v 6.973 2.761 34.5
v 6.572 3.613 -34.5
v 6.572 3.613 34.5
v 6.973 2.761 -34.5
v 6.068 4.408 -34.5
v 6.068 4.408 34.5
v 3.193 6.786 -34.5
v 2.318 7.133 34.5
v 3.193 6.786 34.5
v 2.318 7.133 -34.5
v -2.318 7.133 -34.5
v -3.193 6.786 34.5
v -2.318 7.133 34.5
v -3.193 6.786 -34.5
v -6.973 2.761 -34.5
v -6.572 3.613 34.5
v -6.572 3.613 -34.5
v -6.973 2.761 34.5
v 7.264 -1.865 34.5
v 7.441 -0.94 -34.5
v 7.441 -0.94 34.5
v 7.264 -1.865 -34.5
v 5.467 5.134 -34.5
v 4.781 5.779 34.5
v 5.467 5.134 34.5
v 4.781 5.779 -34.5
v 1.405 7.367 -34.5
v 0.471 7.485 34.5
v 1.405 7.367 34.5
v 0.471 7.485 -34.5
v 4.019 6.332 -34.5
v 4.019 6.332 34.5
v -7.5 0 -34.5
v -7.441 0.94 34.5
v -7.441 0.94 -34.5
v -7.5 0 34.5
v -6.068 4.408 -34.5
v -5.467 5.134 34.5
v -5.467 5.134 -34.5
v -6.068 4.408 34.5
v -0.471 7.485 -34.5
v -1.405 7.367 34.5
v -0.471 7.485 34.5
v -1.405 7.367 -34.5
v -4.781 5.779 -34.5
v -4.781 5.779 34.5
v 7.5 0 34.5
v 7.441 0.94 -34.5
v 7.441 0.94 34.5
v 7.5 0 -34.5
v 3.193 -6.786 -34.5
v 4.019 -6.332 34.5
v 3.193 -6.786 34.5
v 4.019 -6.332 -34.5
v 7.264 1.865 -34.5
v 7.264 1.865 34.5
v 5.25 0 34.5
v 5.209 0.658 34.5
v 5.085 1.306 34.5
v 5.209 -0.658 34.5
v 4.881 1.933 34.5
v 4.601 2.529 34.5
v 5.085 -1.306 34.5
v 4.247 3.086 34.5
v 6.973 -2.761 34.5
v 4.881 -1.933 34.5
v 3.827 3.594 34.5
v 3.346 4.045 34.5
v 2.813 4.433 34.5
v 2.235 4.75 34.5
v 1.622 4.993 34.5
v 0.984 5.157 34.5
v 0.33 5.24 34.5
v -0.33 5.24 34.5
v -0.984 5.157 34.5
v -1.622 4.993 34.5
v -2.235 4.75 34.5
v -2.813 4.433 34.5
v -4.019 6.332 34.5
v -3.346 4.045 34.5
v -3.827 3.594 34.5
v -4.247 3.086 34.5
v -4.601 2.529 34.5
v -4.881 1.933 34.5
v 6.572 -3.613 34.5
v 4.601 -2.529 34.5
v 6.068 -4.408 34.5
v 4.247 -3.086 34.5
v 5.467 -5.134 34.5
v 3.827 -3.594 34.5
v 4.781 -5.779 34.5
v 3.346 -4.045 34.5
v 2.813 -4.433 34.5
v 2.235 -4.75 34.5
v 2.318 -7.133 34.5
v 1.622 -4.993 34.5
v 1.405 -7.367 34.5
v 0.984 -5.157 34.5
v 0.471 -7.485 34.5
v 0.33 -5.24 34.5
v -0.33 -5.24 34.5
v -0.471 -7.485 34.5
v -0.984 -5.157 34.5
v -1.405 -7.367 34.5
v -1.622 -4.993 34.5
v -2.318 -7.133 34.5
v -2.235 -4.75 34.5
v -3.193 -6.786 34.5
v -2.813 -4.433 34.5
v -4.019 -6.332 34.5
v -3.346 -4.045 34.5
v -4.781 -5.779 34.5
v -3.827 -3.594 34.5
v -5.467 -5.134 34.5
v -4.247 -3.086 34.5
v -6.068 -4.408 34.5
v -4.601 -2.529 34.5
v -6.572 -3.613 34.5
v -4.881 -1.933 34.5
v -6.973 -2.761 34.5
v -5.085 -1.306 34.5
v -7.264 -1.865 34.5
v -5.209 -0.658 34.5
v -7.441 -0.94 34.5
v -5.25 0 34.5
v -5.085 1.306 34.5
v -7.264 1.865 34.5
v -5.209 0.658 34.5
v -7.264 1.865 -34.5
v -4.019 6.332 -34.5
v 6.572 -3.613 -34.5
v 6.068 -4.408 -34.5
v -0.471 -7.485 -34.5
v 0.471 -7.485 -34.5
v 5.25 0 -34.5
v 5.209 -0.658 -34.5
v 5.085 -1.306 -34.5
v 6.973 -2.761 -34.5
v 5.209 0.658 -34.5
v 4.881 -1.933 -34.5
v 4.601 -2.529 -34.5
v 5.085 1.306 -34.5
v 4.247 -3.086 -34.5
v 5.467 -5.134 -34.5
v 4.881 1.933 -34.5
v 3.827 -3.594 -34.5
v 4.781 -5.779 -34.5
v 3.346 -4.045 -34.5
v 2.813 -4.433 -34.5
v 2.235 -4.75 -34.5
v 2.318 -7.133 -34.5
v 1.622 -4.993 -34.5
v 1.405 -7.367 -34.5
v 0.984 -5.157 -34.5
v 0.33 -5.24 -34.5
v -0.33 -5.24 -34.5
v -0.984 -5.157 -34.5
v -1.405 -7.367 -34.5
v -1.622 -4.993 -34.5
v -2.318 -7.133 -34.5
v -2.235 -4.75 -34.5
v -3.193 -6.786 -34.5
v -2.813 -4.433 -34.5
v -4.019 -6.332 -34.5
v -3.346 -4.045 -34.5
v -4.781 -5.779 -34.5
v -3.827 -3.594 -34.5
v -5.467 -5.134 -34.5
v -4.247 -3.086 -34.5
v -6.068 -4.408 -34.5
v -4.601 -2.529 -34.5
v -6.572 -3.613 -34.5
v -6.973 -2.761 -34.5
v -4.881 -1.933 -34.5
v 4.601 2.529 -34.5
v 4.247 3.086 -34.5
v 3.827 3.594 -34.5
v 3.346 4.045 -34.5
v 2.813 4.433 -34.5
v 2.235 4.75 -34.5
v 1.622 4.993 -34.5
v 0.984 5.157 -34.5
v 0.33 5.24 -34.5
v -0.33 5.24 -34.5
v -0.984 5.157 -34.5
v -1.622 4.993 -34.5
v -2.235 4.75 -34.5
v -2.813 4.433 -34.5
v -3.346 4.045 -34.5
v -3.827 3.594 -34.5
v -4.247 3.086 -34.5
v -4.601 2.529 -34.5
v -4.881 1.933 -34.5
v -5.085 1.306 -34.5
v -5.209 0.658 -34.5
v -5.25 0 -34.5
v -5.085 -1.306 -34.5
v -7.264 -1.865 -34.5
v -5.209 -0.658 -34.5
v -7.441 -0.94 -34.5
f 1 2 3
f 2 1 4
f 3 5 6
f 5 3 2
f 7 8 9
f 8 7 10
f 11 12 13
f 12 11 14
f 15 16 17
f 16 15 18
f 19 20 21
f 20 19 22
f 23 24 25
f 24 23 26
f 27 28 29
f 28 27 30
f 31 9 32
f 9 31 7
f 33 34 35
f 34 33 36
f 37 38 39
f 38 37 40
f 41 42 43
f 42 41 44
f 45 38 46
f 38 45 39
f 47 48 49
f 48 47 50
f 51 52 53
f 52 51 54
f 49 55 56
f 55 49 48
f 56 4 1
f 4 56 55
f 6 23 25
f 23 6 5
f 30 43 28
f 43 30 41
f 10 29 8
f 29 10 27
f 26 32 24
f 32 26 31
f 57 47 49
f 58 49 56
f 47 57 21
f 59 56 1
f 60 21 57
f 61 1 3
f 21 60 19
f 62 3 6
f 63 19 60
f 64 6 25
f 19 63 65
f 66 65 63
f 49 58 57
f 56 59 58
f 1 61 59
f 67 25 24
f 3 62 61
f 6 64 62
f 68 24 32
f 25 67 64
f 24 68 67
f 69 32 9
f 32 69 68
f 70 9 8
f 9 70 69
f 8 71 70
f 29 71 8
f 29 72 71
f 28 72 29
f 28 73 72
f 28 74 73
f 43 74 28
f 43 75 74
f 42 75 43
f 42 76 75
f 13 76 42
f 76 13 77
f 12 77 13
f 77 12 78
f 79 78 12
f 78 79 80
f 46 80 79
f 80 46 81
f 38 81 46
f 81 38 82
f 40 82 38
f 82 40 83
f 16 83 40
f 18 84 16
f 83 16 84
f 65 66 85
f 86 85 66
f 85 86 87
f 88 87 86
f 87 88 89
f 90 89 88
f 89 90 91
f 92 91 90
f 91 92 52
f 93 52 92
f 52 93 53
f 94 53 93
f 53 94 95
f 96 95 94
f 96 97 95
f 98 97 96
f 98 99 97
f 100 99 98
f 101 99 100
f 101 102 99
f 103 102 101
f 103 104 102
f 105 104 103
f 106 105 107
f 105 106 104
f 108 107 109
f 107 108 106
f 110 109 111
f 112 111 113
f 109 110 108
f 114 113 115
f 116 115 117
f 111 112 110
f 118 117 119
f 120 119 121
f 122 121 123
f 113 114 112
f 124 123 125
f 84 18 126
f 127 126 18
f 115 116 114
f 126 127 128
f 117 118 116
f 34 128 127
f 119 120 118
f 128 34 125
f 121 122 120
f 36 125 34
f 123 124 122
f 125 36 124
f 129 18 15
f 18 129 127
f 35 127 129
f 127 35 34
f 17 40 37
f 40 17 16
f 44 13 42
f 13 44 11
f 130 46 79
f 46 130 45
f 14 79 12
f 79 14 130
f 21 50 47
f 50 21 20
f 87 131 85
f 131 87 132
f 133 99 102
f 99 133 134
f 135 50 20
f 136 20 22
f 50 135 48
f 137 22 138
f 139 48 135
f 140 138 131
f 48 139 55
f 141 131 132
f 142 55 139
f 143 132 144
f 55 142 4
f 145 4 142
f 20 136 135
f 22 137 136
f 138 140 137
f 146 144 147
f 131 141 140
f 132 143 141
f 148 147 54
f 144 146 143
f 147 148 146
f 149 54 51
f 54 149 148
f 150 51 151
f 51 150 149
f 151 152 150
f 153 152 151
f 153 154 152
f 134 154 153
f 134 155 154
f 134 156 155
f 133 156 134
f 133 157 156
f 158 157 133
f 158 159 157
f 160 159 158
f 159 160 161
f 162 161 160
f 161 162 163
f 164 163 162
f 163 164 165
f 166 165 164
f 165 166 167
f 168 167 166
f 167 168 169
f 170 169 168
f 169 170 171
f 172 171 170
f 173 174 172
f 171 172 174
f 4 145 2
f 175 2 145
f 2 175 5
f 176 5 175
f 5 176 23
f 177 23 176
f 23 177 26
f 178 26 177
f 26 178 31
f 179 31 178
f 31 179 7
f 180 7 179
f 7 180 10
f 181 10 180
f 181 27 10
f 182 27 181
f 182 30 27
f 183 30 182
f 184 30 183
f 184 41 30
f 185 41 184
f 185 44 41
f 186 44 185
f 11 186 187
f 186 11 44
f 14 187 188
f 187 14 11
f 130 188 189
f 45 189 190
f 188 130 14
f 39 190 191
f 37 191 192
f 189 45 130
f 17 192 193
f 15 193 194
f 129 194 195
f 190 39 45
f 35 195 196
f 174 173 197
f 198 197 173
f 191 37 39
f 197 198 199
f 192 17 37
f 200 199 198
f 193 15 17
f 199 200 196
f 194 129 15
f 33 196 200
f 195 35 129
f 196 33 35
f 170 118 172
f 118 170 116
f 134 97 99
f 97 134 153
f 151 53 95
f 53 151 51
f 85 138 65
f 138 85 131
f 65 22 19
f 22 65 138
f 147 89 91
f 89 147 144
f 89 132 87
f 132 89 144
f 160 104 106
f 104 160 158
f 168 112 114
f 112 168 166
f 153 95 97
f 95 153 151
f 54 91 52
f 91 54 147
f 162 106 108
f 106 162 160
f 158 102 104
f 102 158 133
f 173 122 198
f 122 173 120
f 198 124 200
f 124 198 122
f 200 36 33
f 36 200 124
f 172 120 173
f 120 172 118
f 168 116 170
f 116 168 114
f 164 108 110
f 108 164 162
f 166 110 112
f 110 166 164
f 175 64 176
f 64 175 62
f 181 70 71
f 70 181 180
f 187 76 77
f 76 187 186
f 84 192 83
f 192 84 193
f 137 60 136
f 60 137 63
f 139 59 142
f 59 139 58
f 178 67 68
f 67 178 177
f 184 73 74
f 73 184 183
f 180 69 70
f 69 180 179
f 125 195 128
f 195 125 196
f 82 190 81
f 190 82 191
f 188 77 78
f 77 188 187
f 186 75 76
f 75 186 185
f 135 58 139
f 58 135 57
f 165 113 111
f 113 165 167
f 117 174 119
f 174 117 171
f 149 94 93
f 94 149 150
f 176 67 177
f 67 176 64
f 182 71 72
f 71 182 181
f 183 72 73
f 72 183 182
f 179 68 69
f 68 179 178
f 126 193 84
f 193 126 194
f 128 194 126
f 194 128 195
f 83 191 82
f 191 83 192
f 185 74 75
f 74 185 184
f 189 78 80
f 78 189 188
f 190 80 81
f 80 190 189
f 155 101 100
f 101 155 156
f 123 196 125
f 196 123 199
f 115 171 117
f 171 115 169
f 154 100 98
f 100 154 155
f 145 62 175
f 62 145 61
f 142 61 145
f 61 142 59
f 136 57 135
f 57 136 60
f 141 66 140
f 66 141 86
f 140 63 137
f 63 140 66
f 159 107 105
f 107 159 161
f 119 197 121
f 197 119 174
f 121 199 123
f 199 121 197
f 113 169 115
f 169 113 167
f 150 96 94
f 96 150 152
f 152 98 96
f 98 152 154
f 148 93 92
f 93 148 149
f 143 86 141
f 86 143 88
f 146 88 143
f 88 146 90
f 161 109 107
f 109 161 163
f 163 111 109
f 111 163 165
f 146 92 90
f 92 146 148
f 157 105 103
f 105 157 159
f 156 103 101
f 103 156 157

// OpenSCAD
$fn = 50;


difference() {
	union() {
		translate(v = [0, 0, -34.5000000000]) {
			cylinder(h = 69, r = 7.5000000000);
		}
	}
	union() {
		translate(v = [0, 0, -100.0000000000]) {
			cylinder(h = 200, r = 5.2500000000);
		}
	}
}
